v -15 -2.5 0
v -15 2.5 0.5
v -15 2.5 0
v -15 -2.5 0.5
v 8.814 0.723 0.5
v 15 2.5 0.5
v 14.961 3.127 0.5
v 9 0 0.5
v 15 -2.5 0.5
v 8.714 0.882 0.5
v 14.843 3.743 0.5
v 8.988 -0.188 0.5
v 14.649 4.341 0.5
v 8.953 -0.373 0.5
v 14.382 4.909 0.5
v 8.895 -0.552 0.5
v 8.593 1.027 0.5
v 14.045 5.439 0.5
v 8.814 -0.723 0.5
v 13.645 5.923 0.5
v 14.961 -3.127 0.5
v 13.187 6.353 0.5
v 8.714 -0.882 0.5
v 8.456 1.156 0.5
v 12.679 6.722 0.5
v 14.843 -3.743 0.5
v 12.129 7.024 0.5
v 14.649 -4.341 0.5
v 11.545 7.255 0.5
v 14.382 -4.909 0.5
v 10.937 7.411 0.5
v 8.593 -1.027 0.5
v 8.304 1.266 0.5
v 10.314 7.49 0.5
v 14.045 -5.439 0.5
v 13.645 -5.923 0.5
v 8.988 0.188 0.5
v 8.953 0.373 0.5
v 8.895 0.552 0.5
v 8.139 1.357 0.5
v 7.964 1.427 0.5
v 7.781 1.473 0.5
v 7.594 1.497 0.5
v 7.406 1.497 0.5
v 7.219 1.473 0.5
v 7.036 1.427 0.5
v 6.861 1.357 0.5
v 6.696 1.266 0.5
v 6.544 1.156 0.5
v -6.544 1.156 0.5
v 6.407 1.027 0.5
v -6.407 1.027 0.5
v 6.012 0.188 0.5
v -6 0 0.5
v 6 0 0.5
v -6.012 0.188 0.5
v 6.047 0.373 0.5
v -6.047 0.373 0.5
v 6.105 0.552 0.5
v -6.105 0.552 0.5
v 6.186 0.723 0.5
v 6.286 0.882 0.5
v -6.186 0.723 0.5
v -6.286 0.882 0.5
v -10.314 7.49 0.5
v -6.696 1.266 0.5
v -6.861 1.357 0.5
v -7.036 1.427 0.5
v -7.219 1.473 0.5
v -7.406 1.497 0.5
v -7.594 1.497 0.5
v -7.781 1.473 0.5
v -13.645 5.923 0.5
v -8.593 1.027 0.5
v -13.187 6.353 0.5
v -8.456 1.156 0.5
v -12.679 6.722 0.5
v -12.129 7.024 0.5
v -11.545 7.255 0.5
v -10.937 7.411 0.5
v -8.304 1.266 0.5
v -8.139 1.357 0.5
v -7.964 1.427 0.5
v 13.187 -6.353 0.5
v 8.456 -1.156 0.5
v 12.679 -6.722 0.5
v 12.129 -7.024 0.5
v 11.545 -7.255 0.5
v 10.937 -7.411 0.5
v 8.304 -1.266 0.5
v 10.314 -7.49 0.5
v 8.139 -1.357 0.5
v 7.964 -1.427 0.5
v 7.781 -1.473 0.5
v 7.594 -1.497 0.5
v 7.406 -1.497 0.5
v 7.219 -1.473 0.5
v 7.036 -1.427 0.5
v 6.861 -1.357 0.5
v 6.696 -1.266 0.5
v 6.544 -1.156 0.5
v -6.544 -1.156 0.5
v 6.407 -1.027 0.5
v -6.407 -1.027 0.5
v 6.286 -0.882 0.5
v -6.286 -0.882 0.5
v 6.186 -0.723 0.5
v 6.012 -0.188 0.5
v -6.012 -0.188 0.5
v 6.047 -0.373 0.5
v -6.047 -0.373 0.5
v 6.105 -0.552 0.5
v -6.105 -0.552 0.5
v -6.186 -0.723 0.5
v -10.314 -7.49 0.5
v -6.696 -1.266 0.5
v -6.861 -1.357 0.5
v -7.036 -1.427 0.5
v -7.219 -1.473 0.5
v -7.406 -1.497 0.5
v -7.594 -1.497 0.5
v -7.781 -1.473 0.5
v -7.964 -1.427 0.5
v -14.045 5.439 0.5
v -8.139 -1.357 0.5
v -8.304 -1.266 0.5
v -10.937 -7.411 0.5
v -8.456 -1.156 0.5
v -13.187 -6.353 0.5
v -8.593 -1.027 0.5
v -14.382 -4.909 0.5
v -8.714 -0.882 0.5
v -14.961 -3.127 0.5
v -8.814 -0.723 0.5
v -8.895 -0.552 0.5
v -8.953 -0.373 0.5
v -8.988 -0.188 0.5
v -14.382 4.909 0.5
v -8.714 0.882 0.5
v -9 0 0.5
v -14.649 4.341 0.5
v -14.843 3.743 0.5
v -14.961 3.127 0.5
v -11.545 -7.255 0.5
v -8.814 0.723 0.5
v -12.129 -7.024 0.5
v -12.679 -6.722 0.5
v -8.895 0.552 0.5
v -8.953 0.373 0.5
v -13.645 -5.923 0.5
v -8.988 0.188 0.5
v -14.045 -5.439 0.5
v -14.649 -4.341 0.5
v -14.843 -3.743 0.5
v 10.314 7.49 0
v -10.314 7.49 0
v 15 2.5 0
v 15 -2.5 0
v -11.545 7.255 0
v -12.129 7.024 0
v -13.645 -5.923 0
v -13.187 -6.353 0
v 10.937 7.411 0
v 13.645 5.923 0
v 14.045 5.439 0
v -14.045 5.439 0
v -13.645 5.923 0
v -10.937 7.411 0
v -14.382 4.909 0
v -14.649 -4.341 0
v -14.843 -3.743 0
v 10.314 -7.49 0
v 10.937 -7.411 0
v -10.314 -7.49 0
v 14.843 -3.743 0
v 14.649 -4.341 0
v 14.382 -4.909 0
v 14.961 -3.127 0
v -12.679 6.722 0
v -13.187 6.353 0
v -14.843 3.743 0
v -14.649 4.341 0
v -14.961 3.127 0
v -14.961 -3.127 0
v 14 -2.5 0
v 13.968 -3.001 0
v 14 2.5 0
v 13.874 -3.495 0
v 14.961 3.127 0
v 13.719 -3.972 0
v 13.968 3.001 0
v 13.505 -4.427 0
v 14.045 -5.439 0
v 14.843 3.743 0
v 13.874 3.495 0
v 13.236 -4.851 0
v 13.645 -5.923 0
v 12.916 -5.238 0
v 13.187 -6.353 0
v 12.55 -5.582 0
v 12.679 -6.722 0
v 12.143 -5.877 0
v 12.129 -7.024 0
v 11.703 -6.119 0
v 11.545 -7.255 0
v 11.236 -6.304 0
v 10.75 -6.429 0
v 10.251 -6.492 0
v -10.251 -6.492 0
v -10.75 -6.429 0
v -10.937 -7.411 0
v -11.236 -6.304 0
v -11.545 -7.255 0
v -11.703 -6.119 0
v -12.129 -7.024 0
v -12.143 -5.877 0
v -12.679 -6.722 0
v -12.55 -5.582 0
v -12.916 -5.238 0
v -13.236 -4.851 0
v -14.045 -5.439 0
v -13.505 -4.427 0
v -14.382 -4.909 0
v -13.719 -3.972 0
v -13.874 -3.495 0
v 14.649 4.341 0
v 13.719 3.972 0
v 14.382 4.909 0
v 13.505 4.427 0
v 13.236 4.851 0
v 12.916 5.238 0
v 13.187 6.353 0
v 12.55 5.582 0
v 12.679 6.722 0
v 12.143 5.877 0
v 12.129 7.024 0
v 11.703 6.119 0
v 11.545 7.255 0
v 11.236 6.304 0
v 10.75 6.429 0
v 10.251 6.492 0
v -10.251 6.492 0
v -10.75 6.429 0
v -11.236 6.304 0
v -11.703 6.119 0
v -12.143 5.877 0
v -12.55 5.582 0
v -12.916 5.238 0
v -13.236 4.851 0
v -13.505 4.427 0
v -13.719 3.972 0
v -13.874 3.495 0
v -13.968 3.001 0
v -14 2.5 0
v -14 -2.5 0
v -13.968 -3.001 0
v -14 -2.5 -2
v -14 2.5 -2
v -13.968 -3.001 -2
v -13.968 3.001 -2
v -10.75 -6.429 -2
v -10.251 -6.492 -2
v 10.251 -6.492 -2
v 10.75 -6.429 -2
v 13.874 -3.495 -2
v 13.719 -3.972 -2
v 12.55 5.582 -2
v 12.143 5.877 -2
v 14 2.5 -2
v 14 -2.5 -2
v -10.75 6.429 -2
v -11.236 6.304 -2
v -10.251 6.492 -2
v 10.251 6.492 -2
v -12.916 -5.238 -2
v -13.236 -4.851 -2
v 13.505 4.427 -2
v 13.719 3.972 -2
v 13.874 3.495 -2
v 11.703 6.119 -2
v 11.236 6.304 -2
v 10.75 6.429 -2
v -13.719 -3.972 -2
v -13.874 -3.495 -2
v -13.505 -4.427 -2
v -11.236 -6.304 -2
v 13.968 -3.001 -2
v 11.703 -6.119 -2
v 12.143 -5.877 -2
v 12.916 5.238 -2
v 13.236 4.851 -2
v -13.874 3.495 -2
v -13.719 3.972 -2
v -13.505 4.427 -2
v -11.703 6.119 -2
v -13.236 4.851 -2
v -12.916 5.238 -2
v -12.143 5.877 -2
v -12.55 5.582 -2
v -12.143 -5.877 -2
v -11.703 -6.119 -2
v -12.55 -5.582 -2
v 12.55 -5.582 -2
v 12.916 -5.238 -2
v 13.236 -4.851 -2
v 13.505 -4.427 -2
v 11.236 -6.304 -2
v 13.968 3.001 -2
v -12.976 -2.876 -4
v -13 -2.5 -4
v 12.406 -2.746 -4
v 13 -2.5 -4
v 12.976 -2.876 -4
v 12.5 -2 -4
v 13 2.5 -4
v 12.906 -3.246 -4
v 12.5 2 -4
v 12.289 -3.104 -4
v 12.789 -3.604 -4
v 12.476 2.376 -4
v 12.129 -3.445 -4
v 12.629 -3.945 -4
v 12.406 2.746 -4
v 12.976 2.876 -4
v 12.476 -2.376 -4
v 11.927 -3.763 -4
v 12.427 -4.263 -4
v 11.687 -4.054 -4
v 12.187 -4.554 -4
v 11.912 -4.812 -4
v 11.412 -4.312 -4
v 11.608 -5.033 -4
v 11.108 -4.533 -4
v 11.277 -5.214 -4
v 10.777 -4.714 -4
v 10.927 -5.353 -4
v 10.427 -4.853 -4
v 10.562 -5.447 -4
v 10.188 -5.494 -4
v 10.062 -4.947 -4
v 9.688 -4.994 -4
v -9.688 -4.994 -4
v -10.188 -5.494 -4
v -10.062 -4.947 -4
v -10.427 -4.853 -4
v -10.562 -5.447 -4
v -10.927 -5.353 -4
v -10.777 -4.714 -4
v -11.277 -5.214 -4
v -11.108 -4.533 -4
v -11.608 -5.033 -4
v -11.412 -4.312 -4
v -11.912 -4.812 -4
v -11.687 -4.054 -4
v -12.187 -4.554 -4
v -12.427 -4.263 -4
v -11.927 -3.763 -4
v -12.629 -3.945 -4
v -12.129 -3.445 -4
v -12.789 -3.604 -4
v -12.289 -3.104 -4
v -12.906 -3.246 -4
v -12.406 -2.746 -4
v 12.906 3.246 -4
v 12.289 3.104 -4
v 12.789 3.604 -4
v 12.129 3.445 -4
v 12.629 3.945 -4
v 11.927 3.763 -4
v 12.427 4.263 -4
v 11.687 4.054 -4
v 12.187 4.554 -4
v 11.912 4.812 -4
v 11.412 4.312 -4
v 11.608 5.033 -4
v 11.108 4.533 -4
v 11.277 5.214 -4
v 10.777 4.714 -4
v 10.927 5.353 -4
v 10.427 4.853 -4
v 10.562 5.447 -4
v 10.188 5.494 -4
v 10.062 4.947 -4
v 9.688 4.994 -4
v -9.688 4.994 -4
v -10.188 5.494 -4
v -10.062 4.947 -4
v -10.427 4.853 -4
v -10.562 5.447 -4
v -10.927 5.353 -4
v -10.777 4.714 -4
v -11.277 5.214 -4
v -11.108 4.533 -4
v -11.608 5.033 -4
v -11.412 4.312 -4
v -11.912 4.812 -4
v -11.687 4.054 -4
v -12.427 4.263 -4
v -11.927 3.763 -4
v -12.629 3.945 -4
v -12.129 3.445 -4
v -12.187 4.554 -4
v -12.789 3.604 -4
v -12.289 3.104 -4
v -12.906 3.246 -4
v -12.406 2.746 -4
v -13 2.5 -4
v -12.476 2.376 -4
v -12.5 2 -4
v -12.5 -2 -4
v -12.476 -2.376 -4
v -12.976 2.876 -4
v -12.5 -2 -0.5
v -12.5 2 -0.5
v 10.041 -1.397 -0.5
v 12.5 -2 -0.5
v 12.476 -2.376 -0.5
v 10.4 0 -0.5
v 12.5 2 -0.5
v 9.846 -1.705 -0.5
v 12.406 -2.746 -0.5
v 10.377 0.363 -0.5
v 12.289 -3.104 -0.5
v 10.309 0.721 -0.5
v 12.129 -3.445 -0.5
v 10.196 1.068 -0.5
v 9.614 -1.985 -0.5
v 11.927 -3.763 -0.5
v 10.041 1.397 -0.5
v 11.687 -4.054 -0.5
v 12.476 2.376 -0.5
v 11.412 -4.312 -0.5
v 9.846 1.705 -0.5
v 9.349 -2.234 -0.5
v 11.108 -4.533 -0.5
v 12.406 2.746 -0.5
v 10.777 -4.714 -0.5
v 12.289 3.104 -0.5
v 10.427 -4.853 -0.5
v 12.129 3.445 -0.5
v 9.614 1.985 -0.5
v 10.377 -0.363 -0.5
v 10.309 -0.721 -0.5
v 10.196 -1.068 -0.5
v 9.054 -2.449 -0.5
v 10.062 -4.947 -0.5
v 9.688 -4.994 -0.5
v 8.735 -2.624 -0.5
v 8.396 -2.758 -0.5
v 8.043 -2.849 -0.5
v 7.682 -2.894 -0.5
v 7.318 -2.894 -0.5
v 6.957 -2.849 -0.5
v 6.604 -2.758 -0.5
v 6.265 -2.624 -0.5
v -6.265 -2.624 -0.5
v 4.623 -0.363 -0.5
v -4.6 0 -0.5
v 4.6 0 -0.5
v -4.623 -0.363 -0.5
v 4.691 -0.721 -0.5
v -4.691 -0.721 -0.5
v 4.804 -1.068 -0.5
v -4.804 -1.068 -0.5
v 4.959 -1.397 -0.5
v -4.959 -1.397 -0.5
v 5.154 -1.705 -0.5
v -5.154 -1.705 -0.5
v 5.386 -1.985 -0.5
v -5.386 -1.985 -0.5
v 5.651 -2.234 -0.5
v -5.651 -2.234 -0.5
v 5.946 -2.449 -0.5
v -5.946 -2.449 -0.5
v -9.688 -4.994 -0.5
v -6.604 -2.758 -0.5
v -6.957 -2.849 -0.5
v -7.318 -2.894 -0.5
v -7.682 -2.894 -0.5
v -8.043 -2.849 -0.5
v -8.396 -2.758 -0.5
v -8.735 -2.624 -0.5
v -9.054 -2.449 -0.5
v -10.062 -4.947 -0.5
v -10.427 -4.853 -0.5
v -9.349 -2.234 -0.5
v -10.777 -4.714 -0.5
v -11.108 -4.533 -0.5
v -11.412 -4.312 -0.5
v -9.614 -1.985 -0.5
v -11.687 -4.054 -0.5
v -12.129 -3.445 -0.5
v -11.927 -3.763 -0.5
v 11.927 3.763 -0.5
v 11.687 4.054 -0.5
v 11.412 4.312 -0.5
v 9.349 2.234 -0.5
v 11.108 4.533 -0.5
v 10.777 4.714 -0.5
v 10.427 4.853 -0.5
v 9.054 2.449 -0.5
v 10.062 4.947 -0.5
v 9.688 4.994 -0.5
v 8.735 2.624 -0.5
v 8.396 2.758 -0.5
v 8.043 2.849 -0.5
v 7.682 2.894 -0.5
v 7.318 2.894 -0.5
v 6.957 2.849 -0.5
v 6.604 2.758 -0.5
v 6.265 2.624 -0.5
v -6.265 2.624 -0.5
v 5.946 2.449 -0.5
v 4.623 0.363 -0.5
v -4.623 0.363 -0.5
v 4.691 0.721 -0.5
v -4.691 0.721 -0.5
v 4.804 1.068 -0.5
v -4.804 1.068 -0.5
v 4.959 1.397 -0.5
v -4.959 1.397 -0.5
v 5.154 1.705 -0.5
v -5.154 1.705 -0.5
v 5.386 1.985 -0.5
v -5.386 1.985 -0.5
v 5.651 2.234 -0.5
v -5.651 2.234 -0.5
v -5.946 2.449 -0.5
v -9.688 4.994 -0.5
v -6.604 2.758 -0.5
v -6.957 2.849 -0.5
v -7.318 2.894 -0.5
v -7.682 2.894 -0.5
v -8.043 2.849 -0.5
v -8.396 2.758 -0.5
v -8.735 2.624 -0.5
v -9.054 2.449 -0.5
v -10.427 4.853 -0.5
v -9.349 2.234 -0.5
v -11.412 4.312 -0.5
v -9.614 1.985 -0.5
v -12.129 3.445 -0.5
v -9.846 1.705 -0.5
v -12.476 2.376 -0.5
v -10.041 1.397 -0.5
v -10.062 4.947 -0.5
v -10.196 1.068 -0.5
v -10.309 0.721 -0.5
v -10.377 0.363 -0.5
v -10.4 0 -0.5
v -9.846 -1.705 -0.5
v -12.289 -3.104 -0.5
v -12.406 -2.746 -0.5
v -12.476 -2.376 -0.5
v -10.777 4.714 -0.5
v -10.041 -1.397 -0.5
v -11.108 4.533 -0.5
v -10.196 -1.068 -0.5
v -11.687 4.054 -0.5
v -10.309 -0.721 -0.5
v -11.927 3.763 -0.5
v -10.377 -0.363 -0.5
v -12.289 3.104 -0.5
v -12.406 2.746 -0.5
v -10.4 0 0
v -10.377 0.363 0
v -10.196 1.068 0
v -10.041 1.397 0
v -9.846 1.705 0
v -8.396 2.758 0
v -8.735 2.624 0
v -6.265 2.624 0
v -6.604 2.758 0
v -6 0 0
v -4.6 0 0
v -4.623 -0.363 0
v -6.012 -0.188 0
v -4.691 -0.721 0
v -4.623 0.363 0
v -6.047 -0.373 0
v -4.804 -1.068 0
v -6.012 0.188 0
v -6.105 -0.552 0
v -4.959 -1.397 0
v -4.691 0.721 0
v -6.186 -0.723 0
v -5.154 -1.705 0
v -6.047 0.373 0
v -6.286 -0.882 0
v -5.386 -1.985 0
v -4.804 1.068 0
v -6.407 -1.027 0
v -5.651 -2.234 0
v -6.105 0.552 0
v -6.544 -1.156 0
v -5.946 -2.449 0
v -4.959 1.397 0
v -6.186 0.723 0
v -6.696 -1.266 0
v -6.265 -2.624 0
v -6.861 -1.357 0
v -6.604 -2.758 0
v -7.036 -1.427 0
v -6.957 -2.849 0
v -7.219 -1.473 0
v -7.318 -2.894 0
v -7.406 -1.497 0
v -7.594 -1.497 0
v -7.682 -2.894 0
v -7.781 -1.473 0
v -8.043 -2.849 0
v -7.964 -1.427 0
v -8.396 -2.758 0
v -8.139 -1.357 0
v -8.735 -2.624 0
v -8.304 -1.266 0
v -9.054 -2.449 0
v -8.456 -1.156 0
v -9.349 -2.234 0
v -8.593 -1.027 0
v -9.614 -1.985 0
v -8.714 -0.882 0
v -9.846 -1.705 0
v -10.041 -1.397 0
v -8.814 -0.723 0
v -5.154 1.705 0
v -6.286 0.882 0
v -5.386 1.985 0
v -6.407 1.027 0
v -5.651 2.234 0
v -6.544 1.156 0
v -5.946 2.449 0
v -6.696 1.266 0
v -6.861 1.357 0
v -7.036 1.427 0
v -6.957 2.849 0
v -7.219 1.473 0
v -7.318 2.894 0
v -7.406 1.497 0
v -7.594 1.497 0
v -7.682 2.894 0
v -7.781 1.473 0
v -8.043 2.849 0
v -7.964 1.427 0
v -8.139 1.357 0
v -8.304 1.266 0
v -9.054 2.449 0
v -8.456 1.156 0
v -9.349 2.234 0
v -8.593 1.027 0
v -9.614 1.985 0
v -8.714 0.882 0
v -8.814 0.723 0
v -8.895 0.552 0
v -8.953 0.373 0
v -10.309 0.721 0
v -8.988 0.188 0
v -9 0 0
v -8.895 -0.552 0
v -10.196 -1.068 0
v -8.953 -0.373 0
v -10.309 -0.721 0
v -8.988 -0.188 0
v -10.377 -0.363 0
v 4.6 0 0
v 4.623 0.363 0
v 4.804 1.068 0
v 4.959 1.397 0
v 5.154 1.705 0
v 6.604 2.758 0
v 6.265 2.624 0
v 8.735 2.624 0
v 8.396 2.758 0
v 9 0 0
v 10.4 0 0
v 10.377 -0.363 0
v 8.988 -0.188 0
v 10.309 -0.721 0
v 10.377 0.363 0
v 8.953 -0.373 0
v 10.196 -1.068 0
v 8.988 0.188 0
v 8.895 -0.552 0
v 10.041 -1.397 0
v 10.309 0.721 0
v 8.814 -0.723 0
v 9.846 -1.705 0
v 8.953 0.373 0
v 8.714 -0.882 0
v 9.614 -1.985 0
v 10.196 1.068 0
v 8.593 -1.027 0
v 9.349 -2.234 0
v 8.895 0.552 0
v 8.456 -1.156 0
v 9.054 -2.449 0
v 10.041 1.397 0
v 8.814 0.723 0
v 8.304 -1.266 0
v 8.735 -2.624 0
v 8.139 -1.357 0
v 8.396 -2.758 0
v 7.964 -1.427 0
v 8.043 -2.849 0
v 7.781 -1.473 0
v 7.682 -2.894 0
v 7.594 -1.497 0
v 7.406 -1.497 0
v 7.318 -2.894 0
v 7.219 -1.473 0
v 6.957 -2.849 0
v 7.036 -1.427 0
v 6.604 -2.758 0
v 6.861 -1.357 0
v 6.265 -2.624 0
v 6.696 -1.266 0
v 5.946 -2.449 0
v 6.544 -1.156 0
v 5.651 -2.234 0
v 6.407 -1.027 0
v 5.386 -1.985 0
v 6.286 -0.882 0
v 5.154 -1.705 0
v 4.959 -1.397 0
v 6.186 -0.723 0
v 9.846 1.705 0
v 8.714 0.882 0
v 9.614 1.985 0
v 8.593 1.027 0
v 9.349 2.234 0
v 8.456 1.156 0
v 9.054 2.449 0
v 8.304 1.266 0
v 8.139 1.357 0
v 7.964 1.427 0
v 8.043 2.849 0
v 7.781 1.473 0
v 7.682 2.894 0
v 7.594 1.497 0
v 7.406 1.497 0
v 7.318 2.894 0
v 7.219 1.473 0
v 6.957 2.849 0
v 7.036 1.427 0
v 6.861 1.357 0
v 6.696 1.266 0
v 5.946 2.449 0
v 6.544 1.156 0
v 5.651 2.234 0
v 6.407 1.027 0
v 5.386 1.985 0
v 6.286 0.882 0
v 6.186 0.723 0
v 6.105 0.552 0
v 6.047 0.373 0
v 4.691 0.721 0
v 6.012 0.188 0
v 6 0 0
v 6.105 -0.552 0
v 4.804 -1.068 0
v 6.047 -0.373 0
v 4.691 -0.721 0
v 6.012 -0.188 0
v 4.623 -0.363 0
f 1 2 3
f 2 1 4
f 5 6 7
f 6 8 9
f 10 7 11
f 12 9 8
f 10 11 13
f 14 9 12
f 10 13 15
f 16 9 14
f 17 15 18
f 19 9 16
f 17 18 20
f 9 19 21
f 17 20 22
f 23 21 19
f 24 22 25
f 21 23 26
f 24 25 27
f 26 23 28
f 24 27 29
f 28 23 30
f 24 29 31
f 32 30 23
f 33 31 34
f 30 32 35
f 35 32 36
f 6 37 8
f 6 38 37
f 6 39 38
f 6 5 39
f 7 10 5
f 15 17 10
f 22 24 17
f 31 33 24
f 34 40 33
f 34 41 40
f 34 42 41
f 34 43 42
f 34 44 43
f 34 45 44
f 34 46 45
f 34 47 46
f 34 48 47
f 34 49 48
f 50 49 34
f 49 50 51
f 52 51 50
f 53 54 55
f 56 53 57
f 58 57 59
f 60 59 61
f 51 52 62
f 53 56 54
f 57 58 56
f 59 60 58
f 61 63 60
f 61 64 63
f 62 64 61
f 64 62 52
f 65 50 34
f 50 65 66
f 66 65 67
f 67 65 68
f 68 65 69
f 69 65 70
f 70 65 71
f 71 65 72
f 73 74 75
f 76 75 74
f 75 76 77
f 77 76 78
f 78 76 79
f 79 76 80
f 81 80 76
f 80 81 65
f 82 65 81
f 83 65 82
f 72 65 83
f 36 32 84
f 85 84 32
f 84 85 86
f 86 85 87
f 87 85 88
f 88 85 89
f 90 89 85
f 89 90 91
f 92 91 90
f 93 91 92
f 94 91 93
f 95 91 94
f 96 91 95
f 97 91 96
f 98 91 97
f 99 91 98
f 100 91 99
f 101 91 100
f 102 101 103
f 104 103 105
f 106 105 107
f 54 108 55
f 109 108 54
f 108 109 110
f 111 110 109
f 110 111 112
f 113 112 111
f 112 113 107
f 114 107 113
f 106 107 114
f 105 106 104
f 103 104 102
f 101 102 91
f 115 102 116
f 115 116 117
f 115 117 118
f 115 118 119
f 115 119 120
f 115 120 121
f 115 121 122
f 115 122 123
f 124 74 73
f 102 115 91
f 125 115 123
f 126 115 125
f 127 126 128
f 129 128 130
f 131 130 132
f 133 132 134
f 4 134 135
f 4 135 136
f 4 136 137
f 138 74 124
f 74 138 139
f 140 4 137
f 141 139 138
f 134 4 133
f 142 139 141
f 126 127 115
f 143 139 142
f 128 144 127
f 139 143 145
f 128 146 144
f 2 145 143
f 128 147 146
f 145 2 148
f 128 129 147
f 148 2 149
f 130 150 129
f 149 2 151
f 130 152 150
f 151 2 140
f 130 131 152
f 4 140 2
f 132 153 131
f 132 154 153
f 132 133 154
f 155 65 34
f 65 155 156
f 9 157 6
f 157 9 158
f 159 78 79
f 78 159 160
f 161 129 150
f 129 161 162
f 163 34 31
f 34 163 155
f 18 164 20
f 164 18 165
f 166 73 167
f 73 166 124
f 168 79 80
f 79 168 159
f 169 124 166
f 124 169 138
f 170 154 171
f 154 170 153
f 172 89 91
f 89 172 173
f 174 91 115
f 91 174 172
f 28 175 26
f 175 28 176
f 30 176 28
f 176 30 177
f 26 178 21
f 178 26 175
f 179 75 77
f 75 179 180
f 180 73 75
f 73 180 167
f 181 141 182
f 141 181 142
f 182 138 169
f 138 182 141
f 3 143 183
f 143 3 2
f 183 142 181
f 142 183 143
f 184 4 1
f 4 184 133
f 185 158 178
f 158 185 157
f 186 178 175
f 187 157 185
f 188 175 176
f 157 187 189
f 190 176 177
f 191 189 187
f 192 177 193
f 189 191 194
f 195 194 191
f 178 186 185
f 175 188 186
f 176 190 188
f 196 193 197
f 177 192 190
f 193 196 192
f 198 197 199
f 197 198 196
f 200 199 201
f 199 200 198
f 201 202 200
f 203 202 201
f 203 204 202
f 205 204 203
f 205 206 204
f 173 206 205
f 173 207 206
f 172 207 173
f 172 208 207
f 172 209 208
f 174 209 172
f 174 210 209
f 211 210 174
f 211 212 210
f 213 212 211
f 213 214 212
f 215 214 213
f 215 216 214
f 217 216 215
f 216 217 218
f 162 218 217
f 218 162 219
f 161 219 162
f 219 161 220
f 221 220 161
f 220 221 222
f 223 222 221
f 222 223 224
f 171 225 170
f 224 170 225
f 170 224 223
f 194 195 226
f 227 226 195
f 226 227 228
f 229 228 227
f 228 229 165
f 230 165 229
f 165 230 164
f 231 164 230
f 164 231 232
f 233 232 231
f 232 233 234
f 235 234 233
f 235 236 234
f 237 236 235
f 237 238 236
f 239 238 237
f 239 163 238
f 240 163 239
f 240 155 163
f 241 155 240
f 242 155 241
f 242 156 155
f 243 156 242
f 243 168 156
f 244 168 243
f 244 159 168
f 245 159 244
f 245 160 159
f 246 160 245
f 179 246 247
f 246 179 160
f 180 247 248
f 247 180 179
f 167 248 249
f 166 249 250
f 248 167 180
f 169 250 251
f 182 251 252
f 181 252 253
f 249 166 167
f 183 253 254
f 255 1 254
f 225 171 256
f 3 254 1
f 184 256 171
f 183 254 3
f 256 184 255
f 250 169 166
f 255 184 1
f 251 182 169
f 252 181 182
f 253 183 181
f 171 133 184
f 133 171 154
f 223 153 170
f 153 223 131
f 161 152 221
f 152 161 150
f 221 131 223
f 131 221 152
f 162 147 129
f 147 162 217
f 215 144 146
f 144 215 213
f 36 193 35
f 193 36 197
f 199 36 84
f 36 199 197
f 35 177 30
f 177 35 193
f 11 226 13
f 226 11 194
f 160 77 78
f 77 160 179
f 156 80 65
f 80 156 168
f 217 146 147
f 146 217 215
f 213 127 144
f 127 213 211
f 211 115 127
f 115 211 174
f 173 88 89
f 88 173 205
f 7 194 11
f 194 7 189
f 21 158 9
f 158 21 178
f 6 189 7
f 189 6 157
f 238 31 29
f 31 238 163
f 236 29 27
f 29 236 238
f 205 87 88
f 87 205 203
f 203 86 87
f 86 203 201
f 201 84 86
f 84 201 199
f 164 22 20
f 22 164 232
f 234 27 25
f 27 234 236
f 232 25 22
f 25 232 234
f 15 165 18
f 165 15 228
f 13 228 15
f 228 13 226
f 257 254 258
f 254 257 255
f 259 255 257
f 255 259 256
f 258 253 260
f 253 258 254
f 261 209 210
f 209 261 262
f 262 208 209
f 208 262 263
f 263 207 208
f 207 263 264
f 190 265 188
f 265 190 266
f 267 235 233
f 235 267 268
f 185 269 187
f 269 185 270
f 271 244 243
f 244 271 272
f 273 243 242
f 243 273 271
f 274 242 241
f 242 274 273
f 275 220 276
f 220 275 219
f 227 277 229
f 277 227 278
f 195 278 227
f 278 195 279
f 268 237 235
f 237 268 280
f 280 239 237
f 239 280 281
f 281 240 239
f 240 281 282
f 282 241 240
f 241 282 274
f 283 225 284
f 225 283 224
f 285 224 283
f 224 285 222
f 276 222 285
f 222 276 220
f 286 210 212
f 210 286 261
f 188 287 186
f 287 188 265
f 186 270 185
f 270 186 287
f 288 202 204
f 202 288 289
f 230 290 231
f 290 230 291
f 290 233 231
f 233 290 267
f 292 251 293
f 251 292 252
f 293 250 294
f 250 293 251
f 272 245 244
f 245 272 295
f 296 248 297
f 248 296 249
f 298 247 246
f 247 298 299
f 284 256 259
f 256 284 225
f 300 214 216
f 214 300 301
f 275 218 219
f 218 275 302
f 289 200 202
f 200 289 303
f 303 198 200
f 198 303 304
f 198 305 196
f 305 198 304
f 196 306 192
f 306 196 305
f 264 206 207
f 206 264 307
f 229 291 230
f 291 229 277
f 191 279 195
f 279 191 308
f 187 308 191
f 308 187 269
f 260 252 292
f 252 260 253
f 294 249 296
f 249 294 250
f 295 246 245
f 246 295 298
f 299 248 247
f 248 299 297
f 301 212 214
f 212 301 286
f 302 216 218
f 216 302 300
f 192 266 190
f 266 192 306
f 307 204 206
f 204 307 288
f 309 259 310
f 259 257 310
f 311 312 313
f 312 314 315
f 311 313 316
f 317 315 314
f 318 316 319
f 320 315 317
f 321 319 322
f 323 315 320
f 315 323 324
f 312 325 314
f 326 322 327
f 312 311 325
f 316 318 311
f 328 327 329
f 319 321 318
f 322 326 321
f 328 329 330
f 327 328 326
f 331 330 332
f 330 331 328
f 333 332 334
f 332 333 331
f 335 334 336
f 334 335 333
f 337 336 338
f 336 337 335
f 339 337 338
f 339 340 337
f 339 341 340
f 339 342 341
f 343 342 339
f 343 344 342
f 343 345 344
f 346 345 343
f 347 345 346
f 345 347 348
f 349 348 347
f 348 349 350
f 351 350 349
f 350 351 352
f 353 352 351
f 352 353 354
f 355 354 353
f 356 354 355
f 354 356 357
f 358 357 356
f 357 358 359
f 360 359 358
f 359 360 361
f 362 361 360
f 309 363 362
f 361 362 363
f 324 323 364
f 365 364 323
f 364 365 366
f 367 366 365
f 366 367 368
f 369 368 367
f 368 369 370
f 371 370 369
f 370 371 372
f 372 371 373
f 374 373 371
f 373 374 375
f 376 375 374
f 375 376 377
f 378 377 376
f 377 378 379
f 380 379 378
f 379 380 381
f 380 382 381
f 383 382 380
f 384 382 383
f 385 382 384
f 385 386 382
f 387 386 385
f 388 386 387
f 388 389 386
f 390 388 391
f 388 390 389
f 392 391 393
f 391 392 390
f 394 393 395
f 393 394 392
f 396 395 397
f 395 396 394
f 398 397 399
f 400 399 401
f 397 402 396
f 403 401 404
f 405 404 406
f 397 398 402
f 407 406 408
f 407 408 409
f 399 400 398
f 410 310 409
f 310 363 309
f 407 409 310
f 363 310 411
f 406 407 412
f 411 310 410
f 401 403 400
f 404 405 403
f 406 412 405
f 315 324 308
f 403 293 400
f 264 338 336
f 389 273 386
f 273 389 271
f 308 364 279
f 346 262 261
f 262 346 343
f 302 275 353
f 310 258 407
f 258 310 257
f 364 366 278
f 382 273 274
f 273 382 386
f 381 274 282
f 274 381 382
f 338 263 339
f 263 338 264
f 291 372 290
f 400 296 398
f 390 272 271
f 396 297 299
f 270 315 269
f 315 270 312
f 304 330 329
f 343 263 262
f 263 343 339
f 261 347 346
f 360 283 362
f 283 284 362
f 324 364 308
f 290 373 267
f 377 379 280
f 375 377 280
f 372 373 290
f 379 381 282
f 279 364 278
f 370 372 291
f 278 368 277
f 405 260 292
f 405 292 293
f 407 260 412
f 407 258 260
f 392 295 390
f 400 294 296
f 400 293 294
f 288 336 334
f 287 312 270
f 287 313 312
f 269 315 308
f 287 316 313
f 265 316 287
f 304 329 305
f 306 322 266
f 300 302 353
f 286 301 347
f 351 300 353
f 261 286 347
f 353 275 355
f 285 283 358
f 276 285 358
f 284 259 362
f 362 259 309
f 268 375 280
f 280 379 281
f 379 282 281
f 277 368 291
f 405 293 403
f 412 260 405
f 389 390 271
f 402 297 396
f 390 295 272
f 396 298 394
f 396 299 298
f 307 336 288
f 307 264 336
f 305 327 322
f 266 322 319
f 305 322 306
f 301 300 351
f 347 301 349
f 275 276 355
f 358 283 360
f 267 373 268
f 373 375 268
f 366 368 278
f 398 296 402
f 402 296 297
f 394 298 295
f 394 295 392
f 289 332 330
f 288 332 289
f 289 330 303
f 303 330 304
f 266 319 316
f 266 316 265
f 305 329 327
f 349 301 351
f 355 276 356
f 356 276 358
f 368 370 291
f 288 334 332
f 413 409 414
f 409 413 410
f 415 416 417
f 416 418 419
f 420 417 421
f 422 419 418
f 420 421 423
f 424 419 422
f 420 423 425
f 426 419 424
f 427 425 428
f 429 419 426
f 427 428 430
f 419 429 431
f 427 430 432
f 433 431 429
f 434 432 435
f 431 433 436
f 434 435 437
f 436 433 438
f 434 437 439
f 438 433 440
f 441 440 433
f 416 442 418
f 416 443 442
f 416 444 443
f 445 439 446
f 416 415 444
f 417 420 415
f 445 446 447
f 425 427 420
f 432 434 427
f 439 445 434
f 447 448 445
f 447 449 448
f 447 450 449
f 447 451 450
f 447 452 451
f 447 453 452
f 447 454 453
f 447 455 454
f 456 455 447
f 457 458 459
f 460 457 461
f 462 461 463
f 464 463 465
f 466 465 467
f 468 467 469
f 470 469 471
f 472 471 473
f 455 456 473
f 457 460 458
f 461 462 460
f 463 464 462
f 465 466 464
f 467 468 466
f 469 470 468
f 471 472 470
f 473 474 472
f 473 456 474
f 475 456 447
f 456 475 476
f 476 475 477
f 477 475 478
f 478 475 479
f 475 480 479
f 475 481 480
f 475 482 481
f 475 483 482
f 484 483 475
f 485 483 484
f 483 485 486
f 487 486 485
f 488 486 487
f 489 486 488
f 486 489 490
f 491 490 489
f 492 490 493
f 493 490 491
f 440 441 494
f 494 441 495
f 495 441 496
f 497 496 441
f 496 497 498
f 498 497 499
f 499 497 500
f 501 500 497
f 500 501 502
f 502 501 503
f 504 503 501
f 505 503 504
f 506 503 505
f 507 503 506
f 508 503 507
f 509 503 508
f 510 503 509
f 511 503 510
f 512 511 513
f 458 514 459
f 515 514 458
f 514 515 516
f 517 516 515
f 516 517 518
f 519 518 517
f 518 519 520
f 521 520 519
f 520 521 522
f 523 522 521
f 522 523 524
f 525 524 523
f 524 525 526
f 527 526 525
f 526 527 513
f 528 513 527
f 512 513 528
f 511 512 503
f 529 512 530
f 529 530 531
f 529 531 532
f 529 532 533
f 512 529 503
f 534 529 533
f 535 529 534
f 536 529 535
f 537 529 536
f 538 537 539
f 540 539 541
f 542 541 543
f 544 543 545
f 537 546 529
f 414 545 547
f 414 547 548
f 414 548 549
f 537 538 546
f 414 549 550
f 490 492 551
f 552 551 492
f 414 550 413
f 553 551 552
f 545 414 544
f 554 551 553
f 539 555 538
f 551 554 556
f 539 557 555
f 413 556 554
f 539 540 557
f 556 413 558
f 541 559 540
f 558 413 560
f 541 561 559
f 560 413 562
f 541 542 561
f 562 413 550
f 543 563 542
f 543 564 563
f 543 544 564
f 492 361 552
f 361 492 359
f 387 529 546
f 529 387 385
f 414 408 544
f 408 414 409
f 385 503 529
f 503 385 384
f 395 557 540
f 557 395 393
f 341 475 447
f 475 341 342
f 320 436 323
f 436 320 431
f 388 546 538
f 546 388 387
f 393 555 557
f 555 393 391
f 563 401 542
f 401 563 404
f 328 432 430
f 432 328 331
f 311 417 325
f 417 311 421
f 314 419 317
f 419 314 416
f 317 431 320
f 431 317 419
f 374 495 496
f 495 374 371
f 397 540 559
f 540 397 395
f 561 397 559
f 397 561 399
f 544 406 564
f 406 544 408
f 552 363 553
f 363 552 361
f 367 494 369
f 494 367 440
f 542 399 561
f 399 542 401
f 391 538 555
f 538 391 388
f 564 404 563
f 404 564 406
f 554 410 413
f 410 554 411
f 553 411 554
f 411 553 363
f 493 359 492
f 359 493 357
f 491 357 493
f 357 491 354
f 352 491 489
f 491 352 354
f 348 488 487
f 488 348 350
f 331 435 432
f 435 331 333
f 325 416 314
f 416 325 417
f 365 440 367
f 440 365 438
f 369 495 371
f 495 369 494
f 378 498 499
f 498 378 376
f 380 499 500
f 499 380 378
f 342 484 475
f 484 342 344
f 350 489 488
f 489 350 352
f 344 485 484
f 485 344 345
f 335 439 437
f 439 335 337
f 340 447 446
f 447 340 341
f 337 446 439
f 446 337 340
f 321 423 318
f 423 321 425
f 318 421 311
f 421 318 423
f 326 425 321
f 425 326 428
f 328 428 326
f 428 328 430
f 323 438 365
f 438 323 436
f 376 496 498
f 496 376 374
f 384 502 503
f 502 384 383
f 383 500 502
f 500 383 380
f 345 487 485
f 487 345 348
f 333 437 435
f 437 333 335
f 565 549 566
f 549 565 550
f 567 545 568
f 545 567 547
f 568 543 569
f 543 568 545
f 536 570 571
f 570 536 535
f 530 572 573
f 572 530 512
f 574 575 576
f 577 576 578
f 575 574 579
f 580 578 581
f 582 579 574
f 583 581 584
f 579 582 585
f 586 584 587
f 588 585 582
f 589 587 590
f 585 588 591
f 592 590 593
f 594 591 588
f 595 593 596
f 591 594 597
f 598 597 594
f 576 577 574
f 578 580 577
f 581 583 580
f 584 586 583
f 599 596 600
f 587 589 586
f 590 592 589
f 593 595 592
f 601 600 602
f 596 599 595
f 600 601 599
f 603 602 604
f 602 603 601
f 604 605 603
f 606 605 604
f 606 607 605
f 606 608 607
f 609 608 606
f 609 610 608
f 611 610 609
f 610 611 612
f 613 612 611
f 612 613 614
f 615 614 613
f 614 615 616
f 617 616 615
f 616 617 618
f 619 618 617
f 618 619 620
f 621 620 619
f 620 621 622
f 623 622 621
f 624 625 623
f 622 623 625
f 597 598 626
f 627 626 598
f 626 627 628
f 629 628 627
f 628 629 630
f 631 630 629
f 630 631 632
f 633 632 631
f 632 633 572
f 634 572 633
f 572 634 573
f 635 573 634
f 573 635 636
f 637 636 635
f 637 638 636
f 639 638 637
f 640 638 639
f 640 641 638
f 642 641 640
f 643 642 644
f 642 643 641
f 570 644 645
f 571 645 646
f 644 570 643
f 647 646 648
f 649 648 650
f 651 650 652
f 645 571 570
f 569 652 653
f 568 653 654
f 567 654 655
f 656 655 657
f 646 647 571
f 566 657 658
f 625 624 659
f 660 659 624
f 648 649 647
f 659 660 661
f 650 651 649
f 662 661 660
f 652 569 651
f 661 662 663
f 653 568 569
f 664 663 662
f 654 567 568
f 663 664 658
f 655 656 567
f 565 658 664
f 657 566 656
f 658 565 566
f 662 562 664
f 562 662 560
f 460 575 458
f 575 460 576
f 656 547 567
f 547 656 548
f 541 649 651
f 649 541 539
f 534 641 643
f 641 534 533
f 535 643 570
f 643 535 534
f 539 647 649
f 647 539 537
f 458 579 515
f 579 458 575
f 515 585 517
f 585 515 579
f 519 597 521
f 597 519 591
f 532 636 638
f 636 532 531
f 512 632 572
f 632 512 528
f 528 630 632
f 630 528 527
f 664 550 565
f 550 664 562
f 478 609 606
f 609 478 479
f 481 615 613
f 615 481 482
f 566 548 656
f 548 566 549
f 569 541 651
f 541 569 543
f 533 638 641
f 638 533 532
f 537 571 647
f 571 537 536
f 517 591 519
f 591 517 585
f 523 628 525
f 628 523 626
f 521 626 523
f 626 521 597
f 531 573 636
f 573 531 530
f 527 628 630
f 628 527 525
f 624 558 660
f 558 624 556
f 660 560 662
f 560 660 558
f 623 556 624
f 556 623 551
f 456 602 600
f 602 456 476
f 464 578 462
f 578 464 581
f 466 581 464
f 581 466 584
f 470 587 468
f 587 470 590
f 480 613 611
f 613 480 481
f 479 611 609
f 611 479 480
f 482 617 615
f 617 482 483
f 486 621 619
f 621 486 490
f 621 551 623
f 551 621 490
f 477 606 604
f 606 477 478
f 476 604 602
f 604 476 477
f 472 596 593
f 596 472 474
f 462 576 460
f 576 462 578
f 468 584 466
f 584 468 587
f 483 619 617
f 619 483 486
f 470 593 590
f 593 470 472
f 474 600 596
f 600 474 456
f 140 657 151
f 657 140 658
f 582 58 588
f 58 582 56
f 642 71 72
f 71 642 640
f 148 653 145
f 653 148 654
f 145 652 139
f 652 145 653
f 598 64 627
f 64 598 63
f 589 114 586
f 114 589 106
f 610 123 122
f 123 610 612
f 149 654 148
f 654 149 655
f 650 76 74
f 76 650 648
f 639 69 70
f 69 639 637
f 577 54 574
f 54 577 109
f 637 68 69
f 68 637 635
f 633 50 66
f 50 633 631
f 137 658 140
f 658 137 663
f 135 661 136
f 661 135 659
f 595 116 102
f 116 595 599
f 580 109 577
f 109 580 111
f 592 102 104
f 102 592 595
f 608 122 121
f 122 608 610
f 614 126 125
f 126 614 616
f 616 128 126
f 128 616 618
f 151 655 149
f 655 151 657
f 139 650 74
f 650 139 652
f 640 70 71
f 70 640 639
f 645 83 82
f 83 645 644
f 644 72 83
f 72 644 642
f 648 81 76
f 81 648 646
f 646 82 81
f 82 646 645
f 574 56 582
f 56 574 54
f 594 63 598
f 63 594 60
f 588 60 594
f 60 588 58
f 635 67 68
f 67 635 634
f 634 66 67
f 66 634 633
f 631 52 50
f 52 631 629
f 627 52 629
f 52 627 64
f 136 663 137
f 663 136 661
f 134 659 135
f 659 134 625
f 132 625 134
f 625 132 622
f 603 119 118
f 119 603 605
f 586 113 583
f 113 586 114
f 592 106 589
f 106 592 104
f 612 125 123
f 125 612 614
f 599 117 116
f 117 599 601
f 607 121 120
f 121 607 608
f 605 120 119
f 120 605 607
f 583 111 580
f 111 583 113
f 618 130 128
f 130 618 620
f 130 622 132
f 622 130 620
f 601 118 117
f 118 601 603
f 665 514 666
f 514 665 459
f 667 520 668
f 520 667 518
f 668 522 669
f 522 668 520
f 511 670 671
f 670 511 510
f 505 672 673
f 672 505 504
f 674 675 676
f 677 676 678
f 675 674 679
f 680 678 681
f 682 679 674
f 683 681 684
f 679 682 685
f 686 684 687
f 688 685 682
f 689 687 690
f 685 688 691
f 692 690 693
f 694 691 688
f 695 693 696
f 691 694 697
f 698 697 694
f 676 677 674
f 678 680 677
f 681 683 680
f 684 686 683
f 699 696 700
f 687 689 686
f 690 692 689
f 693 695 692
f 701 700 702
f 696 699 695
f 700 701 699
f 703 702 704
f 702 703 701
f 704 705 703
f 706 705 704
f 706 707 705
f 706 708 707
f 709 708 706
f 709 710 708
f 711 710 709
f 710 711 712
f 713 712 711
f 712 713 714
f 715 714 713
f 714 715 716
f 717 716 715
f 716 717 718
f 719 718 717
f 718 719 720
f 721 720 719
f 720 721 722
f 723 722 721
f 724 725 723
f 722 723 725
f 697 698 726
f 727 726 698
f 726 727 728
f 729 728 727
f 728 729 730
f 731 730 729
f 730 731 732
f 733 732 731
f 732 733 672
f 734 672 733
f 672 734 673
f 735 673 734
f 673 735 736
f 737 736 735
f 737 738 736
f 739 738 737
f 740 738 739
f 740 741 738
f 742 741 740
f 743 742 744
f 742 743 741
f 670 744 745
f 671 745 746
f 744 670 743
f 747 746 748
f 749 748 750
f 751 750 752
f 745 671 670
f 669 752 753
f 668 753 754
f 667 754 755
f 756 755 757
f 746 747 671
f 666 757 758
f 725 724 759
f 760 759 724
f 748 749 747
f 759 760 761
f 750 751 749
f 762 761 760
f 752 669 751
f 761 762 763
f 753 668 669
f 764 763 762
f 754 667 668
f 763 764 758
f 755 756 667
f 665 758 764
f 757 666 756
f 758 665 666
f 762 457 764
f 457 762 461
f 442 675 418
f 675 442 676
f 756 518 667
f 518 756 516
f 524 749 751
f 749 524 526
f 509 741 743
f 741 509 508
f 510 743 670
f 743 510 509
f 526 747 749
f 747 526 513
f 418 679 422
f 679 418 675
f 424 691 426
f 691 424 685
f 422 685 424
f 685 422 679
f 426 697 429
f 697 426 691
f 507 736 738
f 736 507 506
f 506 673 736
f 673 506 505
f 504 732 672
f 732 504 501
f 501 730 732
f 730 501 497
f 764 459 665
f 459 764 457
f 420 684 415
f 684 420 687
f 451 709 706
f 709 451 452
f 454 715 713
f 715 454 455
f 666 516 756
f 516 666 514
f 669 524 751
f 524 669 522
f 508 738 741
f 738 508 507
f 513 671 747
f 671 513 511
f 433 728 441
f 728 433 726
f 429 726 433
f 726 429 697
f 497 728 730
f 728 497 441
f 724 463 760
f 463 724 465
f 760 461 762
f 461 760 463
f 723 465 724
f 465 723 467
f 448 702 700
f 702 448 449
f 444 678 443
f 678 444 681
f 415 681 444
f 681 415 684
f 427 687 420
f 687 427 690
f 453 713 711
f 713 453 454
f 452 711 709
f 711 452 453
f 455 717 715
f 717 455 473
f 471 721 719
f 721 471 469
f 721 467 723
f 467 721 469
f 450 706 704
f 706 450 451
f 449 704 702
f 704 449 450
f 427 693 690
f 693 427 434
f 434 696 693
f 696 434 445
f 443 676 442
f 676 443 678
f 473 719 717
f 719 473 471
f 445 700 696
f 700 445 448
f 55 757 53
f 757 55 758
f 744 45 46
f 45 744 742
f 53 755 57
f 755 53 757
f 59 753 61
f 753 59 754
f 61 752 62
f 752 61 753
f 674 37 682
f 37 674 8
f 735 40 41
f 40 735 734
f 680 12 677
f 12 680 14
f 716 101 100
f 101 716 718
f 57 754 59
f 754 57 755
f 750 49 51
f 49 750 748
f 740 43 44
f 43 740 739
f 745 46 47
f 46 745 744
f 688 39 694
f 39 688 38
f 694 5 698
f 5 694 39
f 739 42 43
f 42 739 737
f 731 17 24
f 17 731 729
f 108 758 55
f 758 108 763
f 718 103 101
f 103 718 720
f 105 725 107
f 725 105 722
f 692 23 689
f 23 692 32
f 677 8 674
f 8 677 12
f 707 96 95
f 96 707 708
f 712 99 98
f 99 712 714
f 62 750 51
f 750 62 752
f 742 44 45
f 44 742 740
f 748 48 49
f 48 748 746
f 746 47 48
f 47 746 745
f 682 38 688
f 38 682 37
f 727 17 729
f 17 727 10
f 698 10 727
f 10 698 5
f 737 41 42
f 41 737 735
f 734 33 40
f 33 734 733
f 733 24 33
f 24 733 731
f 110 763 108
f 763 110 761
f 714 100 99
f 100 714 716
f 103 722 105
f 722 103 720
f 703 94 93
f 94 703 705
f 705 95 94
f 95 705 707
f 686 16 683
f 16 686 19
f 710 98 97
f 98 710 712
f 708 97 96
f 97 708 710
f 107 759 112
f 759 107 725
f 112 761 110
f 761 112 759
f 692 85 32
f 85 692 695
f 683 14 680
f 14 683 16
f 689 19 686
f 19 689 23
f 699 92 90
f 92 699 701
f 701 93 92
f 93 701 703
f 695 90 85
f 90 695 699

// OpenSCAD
$fn = 50;


difference() {
	union() {
		translate(v = [0, 0, 0]) {
			rotate(a = [0, 0, 0]) {
				hull() {
					translate(v = [-10.0000000000, 2.5000000000, 0]) {
						rotate(a = [0, 0, 0]) {
							translate(v = [0, 0, 0]) {
								rotate(a = [0, 0, 0]) {
									cylinder(h = 0.5000000000, r = 5);
								}
							}
						}
					}
					translate(v = [10.0000000000, 2.5000000000, 0]) {
						rotate(a = [0, 0, 0]) {
							translate(v = [0, 0, 0]) {
								rotate(a = [0, 0, 0]) {
									cylinder(h = 0.5000000000, r = 5);
								}
							}
						}
					}
					translate(v = [-10.0000000000, -2.5000000000, 0]) {
						rotate(a = [0, 0, 0]) {
							translate(v = [0, 0, 0]) {
								rotate(a = [0, 0, 0]) {
									cylinder(h = 0.5000000000, r = 5);
								}
							}
						}
					}
					translate(v = [10.0000000000, -2.5000000000, 0]) {
						rotate(a = [0, 0, 0]) {
							translate(v = [0, 0, 0]) {
								rotate(a = [0, 0, 0]) {
									cylinder(h = 0.5000000000, r = 5);
								}
							}
						}
					}
				}
			}
		}
		translate(v = [0, 0, -2]) {
			rotate(a = [0, 0, 0]) {
				hull() {
					translate(v = [-10.0000000000, 2.5000000000, 0]) {
						rotate(a = [0, 0, 0]) {
							cylinder(h = 2, r1 = 4.0000000000, r2 = 4.0000000000);
						}
					}
					translate(v = [10.0000000000, 2.5000000000, 0]) {
						rotate(a = [0, 0, 0]) {
							cylinder(h = 2, r1 = 4.0000000000, r2 = 4.0000000000);
						}
					}
					translate(v = [-10.0000000000, -2.5000000000, 0]) {
						rotate(a = [0, 0, 0]) {
							cylinder(h = 2, r1 = 4.0000000000, r2 = 4.0000000000);
						}
					}
					translate(v = [10.0000000000, -2.5000000000, 0]) {
						rotate(a = [0, 0, 0]) {
							cylinder(h = 2, r1 = 4.0000000000, r2 = 4.0000000000);
						}
					}
				}
			}
		}
		translate(v = [0, 0, -4]) {
			rotate(a = [0, 180, 0]) {
				hull() {
					translate(v = [-10.0000000000, 2.5000000000, 0]) {
						rotate(a = [0, 180, 0]) {
							cylinder(h = 2, r1 = 3.0000000000, r2 = 4.0000000000);
						}
					}
					translate(v = [10.0000000000, 2.5000000000, 0]) {
						rotate(a = [0, 180, 0]) {
							cylinder(h = 2, r1 = 3.0000000000, r2 = 4.0000000000);
						}
					}
					translate(v = [-10.0000000000, -2.5000000000, 0]) {
						rotate(a = [0, 180, 0]) {
							cylinder(h = 2, r1 = 3.0000000000, r2 = 4.0000000000);
						}
					}
					translate(v = [10.0000000000, -2.5000000000, 0]) {
						rotate(a = [0, 180, 0]) {
							cylinder(h = 2, r1 = 3.0000000000, r2 = 4.0000000000);
						}
					}
				}
			}
		}
	}
	union() {
		translate(v = [0, 0, -4]) {
			rotate(a = [0, 0, 0]) {
				hull() {
					translate(v = [-9.5000000000, 2.0000000000, 0]) {
						rotate(a = [0, 0, 0]) {
							translate(v = [0, 0, 0]) {
								rotate(a = [0, 0, 0]) {
									cylinder(h = 3.5000000000, r = 3.0000000000);
								}
							}
						}
					}
					translate(v = [9.5000000000, 2.0000000000, 0]) {
						rotate(a = [0, 0, 0]) {
							translate(v = [0, 0, 0]) {
								rotate(a = [0, 0, 0]) {
									cylinder(h = 3.5000000000, r = 3.0000000000);
								}
							}
						}
					}
					translate(v = [-9.5000000000, -2.0000000000, 0]) {
						rotate(a = [0, 0, 0]) {
							translate(v = [0, 0, 0]) {
								rotate(a = [0, 0, 0]) {
									cylinder(h = 3.5000000000, r = 3.0000000000);
								}
							}
						}
					}
					translate(v = [9.5000000000, -2.0000000000, 0]) {
						rotate(a = [0, 0, 0]) {
							translate(v = [0, 0, 0]) {
								rotate(a = [0, 0, 0]) {
									cylinder(h = 3.5000000000, r = 3.0000000000);
								}
							}
						}
					}
				}
			}
		}
		#translate(v = [-7.5000000000, 0.0000000000, 0]) {
			rotate(a = [0, 180, 0]) {
				cylinder(h = 3, r = 2.9000000000);
			}
		}
		#translate(v = [-7.5000000000, 0.0000000000, 10]) {
			rotate(a = [0, 180, 0]) {
				cylinder(h = 10, r = 1.5000000000);
			}
		}
		#translate(v = [7.5000000000, 0.0000000000, 0]) {
			rotate(a = [0, 180, 0]) {
				cylinder(h = 3, r = 2.9000000000);
			}
		}
		#translate(v = [7.5000000000, 0.0000000000, 10]) {
			rotate(a = [0, 180, 0]) {
				cylinder(h = 10, r = 1.5000000000);
			}
		}
		#translate(v = [-7.5000000000, 0.0000000000, 0]) {
			rotate(a = [0, 180, 0]) {
				cylinder(h = 3, r = 2.9000000000);
			}
		}
		#translate(v = [-7.5000000000, 0.0000000000, 10]) {
			rotate(a = [0, 180, 0]) {
				cylinder(h = 10, r = 1.5000000000);
			}
		}
		#translate(v = [7.5000000000, 0.0000000000, 0]) {
			rotate(a = [0, 180, 0]) {
				cylinder(h = 3, r = 2.9000000000);
			}
		}
		#translate(v = [7.5000000000, 0.0000000000, 10]) {
			rotate(a = [0, 180, 0]) {
				cylinder(h = 10, r = 1.5000000000);
			}
		}
	}
}
